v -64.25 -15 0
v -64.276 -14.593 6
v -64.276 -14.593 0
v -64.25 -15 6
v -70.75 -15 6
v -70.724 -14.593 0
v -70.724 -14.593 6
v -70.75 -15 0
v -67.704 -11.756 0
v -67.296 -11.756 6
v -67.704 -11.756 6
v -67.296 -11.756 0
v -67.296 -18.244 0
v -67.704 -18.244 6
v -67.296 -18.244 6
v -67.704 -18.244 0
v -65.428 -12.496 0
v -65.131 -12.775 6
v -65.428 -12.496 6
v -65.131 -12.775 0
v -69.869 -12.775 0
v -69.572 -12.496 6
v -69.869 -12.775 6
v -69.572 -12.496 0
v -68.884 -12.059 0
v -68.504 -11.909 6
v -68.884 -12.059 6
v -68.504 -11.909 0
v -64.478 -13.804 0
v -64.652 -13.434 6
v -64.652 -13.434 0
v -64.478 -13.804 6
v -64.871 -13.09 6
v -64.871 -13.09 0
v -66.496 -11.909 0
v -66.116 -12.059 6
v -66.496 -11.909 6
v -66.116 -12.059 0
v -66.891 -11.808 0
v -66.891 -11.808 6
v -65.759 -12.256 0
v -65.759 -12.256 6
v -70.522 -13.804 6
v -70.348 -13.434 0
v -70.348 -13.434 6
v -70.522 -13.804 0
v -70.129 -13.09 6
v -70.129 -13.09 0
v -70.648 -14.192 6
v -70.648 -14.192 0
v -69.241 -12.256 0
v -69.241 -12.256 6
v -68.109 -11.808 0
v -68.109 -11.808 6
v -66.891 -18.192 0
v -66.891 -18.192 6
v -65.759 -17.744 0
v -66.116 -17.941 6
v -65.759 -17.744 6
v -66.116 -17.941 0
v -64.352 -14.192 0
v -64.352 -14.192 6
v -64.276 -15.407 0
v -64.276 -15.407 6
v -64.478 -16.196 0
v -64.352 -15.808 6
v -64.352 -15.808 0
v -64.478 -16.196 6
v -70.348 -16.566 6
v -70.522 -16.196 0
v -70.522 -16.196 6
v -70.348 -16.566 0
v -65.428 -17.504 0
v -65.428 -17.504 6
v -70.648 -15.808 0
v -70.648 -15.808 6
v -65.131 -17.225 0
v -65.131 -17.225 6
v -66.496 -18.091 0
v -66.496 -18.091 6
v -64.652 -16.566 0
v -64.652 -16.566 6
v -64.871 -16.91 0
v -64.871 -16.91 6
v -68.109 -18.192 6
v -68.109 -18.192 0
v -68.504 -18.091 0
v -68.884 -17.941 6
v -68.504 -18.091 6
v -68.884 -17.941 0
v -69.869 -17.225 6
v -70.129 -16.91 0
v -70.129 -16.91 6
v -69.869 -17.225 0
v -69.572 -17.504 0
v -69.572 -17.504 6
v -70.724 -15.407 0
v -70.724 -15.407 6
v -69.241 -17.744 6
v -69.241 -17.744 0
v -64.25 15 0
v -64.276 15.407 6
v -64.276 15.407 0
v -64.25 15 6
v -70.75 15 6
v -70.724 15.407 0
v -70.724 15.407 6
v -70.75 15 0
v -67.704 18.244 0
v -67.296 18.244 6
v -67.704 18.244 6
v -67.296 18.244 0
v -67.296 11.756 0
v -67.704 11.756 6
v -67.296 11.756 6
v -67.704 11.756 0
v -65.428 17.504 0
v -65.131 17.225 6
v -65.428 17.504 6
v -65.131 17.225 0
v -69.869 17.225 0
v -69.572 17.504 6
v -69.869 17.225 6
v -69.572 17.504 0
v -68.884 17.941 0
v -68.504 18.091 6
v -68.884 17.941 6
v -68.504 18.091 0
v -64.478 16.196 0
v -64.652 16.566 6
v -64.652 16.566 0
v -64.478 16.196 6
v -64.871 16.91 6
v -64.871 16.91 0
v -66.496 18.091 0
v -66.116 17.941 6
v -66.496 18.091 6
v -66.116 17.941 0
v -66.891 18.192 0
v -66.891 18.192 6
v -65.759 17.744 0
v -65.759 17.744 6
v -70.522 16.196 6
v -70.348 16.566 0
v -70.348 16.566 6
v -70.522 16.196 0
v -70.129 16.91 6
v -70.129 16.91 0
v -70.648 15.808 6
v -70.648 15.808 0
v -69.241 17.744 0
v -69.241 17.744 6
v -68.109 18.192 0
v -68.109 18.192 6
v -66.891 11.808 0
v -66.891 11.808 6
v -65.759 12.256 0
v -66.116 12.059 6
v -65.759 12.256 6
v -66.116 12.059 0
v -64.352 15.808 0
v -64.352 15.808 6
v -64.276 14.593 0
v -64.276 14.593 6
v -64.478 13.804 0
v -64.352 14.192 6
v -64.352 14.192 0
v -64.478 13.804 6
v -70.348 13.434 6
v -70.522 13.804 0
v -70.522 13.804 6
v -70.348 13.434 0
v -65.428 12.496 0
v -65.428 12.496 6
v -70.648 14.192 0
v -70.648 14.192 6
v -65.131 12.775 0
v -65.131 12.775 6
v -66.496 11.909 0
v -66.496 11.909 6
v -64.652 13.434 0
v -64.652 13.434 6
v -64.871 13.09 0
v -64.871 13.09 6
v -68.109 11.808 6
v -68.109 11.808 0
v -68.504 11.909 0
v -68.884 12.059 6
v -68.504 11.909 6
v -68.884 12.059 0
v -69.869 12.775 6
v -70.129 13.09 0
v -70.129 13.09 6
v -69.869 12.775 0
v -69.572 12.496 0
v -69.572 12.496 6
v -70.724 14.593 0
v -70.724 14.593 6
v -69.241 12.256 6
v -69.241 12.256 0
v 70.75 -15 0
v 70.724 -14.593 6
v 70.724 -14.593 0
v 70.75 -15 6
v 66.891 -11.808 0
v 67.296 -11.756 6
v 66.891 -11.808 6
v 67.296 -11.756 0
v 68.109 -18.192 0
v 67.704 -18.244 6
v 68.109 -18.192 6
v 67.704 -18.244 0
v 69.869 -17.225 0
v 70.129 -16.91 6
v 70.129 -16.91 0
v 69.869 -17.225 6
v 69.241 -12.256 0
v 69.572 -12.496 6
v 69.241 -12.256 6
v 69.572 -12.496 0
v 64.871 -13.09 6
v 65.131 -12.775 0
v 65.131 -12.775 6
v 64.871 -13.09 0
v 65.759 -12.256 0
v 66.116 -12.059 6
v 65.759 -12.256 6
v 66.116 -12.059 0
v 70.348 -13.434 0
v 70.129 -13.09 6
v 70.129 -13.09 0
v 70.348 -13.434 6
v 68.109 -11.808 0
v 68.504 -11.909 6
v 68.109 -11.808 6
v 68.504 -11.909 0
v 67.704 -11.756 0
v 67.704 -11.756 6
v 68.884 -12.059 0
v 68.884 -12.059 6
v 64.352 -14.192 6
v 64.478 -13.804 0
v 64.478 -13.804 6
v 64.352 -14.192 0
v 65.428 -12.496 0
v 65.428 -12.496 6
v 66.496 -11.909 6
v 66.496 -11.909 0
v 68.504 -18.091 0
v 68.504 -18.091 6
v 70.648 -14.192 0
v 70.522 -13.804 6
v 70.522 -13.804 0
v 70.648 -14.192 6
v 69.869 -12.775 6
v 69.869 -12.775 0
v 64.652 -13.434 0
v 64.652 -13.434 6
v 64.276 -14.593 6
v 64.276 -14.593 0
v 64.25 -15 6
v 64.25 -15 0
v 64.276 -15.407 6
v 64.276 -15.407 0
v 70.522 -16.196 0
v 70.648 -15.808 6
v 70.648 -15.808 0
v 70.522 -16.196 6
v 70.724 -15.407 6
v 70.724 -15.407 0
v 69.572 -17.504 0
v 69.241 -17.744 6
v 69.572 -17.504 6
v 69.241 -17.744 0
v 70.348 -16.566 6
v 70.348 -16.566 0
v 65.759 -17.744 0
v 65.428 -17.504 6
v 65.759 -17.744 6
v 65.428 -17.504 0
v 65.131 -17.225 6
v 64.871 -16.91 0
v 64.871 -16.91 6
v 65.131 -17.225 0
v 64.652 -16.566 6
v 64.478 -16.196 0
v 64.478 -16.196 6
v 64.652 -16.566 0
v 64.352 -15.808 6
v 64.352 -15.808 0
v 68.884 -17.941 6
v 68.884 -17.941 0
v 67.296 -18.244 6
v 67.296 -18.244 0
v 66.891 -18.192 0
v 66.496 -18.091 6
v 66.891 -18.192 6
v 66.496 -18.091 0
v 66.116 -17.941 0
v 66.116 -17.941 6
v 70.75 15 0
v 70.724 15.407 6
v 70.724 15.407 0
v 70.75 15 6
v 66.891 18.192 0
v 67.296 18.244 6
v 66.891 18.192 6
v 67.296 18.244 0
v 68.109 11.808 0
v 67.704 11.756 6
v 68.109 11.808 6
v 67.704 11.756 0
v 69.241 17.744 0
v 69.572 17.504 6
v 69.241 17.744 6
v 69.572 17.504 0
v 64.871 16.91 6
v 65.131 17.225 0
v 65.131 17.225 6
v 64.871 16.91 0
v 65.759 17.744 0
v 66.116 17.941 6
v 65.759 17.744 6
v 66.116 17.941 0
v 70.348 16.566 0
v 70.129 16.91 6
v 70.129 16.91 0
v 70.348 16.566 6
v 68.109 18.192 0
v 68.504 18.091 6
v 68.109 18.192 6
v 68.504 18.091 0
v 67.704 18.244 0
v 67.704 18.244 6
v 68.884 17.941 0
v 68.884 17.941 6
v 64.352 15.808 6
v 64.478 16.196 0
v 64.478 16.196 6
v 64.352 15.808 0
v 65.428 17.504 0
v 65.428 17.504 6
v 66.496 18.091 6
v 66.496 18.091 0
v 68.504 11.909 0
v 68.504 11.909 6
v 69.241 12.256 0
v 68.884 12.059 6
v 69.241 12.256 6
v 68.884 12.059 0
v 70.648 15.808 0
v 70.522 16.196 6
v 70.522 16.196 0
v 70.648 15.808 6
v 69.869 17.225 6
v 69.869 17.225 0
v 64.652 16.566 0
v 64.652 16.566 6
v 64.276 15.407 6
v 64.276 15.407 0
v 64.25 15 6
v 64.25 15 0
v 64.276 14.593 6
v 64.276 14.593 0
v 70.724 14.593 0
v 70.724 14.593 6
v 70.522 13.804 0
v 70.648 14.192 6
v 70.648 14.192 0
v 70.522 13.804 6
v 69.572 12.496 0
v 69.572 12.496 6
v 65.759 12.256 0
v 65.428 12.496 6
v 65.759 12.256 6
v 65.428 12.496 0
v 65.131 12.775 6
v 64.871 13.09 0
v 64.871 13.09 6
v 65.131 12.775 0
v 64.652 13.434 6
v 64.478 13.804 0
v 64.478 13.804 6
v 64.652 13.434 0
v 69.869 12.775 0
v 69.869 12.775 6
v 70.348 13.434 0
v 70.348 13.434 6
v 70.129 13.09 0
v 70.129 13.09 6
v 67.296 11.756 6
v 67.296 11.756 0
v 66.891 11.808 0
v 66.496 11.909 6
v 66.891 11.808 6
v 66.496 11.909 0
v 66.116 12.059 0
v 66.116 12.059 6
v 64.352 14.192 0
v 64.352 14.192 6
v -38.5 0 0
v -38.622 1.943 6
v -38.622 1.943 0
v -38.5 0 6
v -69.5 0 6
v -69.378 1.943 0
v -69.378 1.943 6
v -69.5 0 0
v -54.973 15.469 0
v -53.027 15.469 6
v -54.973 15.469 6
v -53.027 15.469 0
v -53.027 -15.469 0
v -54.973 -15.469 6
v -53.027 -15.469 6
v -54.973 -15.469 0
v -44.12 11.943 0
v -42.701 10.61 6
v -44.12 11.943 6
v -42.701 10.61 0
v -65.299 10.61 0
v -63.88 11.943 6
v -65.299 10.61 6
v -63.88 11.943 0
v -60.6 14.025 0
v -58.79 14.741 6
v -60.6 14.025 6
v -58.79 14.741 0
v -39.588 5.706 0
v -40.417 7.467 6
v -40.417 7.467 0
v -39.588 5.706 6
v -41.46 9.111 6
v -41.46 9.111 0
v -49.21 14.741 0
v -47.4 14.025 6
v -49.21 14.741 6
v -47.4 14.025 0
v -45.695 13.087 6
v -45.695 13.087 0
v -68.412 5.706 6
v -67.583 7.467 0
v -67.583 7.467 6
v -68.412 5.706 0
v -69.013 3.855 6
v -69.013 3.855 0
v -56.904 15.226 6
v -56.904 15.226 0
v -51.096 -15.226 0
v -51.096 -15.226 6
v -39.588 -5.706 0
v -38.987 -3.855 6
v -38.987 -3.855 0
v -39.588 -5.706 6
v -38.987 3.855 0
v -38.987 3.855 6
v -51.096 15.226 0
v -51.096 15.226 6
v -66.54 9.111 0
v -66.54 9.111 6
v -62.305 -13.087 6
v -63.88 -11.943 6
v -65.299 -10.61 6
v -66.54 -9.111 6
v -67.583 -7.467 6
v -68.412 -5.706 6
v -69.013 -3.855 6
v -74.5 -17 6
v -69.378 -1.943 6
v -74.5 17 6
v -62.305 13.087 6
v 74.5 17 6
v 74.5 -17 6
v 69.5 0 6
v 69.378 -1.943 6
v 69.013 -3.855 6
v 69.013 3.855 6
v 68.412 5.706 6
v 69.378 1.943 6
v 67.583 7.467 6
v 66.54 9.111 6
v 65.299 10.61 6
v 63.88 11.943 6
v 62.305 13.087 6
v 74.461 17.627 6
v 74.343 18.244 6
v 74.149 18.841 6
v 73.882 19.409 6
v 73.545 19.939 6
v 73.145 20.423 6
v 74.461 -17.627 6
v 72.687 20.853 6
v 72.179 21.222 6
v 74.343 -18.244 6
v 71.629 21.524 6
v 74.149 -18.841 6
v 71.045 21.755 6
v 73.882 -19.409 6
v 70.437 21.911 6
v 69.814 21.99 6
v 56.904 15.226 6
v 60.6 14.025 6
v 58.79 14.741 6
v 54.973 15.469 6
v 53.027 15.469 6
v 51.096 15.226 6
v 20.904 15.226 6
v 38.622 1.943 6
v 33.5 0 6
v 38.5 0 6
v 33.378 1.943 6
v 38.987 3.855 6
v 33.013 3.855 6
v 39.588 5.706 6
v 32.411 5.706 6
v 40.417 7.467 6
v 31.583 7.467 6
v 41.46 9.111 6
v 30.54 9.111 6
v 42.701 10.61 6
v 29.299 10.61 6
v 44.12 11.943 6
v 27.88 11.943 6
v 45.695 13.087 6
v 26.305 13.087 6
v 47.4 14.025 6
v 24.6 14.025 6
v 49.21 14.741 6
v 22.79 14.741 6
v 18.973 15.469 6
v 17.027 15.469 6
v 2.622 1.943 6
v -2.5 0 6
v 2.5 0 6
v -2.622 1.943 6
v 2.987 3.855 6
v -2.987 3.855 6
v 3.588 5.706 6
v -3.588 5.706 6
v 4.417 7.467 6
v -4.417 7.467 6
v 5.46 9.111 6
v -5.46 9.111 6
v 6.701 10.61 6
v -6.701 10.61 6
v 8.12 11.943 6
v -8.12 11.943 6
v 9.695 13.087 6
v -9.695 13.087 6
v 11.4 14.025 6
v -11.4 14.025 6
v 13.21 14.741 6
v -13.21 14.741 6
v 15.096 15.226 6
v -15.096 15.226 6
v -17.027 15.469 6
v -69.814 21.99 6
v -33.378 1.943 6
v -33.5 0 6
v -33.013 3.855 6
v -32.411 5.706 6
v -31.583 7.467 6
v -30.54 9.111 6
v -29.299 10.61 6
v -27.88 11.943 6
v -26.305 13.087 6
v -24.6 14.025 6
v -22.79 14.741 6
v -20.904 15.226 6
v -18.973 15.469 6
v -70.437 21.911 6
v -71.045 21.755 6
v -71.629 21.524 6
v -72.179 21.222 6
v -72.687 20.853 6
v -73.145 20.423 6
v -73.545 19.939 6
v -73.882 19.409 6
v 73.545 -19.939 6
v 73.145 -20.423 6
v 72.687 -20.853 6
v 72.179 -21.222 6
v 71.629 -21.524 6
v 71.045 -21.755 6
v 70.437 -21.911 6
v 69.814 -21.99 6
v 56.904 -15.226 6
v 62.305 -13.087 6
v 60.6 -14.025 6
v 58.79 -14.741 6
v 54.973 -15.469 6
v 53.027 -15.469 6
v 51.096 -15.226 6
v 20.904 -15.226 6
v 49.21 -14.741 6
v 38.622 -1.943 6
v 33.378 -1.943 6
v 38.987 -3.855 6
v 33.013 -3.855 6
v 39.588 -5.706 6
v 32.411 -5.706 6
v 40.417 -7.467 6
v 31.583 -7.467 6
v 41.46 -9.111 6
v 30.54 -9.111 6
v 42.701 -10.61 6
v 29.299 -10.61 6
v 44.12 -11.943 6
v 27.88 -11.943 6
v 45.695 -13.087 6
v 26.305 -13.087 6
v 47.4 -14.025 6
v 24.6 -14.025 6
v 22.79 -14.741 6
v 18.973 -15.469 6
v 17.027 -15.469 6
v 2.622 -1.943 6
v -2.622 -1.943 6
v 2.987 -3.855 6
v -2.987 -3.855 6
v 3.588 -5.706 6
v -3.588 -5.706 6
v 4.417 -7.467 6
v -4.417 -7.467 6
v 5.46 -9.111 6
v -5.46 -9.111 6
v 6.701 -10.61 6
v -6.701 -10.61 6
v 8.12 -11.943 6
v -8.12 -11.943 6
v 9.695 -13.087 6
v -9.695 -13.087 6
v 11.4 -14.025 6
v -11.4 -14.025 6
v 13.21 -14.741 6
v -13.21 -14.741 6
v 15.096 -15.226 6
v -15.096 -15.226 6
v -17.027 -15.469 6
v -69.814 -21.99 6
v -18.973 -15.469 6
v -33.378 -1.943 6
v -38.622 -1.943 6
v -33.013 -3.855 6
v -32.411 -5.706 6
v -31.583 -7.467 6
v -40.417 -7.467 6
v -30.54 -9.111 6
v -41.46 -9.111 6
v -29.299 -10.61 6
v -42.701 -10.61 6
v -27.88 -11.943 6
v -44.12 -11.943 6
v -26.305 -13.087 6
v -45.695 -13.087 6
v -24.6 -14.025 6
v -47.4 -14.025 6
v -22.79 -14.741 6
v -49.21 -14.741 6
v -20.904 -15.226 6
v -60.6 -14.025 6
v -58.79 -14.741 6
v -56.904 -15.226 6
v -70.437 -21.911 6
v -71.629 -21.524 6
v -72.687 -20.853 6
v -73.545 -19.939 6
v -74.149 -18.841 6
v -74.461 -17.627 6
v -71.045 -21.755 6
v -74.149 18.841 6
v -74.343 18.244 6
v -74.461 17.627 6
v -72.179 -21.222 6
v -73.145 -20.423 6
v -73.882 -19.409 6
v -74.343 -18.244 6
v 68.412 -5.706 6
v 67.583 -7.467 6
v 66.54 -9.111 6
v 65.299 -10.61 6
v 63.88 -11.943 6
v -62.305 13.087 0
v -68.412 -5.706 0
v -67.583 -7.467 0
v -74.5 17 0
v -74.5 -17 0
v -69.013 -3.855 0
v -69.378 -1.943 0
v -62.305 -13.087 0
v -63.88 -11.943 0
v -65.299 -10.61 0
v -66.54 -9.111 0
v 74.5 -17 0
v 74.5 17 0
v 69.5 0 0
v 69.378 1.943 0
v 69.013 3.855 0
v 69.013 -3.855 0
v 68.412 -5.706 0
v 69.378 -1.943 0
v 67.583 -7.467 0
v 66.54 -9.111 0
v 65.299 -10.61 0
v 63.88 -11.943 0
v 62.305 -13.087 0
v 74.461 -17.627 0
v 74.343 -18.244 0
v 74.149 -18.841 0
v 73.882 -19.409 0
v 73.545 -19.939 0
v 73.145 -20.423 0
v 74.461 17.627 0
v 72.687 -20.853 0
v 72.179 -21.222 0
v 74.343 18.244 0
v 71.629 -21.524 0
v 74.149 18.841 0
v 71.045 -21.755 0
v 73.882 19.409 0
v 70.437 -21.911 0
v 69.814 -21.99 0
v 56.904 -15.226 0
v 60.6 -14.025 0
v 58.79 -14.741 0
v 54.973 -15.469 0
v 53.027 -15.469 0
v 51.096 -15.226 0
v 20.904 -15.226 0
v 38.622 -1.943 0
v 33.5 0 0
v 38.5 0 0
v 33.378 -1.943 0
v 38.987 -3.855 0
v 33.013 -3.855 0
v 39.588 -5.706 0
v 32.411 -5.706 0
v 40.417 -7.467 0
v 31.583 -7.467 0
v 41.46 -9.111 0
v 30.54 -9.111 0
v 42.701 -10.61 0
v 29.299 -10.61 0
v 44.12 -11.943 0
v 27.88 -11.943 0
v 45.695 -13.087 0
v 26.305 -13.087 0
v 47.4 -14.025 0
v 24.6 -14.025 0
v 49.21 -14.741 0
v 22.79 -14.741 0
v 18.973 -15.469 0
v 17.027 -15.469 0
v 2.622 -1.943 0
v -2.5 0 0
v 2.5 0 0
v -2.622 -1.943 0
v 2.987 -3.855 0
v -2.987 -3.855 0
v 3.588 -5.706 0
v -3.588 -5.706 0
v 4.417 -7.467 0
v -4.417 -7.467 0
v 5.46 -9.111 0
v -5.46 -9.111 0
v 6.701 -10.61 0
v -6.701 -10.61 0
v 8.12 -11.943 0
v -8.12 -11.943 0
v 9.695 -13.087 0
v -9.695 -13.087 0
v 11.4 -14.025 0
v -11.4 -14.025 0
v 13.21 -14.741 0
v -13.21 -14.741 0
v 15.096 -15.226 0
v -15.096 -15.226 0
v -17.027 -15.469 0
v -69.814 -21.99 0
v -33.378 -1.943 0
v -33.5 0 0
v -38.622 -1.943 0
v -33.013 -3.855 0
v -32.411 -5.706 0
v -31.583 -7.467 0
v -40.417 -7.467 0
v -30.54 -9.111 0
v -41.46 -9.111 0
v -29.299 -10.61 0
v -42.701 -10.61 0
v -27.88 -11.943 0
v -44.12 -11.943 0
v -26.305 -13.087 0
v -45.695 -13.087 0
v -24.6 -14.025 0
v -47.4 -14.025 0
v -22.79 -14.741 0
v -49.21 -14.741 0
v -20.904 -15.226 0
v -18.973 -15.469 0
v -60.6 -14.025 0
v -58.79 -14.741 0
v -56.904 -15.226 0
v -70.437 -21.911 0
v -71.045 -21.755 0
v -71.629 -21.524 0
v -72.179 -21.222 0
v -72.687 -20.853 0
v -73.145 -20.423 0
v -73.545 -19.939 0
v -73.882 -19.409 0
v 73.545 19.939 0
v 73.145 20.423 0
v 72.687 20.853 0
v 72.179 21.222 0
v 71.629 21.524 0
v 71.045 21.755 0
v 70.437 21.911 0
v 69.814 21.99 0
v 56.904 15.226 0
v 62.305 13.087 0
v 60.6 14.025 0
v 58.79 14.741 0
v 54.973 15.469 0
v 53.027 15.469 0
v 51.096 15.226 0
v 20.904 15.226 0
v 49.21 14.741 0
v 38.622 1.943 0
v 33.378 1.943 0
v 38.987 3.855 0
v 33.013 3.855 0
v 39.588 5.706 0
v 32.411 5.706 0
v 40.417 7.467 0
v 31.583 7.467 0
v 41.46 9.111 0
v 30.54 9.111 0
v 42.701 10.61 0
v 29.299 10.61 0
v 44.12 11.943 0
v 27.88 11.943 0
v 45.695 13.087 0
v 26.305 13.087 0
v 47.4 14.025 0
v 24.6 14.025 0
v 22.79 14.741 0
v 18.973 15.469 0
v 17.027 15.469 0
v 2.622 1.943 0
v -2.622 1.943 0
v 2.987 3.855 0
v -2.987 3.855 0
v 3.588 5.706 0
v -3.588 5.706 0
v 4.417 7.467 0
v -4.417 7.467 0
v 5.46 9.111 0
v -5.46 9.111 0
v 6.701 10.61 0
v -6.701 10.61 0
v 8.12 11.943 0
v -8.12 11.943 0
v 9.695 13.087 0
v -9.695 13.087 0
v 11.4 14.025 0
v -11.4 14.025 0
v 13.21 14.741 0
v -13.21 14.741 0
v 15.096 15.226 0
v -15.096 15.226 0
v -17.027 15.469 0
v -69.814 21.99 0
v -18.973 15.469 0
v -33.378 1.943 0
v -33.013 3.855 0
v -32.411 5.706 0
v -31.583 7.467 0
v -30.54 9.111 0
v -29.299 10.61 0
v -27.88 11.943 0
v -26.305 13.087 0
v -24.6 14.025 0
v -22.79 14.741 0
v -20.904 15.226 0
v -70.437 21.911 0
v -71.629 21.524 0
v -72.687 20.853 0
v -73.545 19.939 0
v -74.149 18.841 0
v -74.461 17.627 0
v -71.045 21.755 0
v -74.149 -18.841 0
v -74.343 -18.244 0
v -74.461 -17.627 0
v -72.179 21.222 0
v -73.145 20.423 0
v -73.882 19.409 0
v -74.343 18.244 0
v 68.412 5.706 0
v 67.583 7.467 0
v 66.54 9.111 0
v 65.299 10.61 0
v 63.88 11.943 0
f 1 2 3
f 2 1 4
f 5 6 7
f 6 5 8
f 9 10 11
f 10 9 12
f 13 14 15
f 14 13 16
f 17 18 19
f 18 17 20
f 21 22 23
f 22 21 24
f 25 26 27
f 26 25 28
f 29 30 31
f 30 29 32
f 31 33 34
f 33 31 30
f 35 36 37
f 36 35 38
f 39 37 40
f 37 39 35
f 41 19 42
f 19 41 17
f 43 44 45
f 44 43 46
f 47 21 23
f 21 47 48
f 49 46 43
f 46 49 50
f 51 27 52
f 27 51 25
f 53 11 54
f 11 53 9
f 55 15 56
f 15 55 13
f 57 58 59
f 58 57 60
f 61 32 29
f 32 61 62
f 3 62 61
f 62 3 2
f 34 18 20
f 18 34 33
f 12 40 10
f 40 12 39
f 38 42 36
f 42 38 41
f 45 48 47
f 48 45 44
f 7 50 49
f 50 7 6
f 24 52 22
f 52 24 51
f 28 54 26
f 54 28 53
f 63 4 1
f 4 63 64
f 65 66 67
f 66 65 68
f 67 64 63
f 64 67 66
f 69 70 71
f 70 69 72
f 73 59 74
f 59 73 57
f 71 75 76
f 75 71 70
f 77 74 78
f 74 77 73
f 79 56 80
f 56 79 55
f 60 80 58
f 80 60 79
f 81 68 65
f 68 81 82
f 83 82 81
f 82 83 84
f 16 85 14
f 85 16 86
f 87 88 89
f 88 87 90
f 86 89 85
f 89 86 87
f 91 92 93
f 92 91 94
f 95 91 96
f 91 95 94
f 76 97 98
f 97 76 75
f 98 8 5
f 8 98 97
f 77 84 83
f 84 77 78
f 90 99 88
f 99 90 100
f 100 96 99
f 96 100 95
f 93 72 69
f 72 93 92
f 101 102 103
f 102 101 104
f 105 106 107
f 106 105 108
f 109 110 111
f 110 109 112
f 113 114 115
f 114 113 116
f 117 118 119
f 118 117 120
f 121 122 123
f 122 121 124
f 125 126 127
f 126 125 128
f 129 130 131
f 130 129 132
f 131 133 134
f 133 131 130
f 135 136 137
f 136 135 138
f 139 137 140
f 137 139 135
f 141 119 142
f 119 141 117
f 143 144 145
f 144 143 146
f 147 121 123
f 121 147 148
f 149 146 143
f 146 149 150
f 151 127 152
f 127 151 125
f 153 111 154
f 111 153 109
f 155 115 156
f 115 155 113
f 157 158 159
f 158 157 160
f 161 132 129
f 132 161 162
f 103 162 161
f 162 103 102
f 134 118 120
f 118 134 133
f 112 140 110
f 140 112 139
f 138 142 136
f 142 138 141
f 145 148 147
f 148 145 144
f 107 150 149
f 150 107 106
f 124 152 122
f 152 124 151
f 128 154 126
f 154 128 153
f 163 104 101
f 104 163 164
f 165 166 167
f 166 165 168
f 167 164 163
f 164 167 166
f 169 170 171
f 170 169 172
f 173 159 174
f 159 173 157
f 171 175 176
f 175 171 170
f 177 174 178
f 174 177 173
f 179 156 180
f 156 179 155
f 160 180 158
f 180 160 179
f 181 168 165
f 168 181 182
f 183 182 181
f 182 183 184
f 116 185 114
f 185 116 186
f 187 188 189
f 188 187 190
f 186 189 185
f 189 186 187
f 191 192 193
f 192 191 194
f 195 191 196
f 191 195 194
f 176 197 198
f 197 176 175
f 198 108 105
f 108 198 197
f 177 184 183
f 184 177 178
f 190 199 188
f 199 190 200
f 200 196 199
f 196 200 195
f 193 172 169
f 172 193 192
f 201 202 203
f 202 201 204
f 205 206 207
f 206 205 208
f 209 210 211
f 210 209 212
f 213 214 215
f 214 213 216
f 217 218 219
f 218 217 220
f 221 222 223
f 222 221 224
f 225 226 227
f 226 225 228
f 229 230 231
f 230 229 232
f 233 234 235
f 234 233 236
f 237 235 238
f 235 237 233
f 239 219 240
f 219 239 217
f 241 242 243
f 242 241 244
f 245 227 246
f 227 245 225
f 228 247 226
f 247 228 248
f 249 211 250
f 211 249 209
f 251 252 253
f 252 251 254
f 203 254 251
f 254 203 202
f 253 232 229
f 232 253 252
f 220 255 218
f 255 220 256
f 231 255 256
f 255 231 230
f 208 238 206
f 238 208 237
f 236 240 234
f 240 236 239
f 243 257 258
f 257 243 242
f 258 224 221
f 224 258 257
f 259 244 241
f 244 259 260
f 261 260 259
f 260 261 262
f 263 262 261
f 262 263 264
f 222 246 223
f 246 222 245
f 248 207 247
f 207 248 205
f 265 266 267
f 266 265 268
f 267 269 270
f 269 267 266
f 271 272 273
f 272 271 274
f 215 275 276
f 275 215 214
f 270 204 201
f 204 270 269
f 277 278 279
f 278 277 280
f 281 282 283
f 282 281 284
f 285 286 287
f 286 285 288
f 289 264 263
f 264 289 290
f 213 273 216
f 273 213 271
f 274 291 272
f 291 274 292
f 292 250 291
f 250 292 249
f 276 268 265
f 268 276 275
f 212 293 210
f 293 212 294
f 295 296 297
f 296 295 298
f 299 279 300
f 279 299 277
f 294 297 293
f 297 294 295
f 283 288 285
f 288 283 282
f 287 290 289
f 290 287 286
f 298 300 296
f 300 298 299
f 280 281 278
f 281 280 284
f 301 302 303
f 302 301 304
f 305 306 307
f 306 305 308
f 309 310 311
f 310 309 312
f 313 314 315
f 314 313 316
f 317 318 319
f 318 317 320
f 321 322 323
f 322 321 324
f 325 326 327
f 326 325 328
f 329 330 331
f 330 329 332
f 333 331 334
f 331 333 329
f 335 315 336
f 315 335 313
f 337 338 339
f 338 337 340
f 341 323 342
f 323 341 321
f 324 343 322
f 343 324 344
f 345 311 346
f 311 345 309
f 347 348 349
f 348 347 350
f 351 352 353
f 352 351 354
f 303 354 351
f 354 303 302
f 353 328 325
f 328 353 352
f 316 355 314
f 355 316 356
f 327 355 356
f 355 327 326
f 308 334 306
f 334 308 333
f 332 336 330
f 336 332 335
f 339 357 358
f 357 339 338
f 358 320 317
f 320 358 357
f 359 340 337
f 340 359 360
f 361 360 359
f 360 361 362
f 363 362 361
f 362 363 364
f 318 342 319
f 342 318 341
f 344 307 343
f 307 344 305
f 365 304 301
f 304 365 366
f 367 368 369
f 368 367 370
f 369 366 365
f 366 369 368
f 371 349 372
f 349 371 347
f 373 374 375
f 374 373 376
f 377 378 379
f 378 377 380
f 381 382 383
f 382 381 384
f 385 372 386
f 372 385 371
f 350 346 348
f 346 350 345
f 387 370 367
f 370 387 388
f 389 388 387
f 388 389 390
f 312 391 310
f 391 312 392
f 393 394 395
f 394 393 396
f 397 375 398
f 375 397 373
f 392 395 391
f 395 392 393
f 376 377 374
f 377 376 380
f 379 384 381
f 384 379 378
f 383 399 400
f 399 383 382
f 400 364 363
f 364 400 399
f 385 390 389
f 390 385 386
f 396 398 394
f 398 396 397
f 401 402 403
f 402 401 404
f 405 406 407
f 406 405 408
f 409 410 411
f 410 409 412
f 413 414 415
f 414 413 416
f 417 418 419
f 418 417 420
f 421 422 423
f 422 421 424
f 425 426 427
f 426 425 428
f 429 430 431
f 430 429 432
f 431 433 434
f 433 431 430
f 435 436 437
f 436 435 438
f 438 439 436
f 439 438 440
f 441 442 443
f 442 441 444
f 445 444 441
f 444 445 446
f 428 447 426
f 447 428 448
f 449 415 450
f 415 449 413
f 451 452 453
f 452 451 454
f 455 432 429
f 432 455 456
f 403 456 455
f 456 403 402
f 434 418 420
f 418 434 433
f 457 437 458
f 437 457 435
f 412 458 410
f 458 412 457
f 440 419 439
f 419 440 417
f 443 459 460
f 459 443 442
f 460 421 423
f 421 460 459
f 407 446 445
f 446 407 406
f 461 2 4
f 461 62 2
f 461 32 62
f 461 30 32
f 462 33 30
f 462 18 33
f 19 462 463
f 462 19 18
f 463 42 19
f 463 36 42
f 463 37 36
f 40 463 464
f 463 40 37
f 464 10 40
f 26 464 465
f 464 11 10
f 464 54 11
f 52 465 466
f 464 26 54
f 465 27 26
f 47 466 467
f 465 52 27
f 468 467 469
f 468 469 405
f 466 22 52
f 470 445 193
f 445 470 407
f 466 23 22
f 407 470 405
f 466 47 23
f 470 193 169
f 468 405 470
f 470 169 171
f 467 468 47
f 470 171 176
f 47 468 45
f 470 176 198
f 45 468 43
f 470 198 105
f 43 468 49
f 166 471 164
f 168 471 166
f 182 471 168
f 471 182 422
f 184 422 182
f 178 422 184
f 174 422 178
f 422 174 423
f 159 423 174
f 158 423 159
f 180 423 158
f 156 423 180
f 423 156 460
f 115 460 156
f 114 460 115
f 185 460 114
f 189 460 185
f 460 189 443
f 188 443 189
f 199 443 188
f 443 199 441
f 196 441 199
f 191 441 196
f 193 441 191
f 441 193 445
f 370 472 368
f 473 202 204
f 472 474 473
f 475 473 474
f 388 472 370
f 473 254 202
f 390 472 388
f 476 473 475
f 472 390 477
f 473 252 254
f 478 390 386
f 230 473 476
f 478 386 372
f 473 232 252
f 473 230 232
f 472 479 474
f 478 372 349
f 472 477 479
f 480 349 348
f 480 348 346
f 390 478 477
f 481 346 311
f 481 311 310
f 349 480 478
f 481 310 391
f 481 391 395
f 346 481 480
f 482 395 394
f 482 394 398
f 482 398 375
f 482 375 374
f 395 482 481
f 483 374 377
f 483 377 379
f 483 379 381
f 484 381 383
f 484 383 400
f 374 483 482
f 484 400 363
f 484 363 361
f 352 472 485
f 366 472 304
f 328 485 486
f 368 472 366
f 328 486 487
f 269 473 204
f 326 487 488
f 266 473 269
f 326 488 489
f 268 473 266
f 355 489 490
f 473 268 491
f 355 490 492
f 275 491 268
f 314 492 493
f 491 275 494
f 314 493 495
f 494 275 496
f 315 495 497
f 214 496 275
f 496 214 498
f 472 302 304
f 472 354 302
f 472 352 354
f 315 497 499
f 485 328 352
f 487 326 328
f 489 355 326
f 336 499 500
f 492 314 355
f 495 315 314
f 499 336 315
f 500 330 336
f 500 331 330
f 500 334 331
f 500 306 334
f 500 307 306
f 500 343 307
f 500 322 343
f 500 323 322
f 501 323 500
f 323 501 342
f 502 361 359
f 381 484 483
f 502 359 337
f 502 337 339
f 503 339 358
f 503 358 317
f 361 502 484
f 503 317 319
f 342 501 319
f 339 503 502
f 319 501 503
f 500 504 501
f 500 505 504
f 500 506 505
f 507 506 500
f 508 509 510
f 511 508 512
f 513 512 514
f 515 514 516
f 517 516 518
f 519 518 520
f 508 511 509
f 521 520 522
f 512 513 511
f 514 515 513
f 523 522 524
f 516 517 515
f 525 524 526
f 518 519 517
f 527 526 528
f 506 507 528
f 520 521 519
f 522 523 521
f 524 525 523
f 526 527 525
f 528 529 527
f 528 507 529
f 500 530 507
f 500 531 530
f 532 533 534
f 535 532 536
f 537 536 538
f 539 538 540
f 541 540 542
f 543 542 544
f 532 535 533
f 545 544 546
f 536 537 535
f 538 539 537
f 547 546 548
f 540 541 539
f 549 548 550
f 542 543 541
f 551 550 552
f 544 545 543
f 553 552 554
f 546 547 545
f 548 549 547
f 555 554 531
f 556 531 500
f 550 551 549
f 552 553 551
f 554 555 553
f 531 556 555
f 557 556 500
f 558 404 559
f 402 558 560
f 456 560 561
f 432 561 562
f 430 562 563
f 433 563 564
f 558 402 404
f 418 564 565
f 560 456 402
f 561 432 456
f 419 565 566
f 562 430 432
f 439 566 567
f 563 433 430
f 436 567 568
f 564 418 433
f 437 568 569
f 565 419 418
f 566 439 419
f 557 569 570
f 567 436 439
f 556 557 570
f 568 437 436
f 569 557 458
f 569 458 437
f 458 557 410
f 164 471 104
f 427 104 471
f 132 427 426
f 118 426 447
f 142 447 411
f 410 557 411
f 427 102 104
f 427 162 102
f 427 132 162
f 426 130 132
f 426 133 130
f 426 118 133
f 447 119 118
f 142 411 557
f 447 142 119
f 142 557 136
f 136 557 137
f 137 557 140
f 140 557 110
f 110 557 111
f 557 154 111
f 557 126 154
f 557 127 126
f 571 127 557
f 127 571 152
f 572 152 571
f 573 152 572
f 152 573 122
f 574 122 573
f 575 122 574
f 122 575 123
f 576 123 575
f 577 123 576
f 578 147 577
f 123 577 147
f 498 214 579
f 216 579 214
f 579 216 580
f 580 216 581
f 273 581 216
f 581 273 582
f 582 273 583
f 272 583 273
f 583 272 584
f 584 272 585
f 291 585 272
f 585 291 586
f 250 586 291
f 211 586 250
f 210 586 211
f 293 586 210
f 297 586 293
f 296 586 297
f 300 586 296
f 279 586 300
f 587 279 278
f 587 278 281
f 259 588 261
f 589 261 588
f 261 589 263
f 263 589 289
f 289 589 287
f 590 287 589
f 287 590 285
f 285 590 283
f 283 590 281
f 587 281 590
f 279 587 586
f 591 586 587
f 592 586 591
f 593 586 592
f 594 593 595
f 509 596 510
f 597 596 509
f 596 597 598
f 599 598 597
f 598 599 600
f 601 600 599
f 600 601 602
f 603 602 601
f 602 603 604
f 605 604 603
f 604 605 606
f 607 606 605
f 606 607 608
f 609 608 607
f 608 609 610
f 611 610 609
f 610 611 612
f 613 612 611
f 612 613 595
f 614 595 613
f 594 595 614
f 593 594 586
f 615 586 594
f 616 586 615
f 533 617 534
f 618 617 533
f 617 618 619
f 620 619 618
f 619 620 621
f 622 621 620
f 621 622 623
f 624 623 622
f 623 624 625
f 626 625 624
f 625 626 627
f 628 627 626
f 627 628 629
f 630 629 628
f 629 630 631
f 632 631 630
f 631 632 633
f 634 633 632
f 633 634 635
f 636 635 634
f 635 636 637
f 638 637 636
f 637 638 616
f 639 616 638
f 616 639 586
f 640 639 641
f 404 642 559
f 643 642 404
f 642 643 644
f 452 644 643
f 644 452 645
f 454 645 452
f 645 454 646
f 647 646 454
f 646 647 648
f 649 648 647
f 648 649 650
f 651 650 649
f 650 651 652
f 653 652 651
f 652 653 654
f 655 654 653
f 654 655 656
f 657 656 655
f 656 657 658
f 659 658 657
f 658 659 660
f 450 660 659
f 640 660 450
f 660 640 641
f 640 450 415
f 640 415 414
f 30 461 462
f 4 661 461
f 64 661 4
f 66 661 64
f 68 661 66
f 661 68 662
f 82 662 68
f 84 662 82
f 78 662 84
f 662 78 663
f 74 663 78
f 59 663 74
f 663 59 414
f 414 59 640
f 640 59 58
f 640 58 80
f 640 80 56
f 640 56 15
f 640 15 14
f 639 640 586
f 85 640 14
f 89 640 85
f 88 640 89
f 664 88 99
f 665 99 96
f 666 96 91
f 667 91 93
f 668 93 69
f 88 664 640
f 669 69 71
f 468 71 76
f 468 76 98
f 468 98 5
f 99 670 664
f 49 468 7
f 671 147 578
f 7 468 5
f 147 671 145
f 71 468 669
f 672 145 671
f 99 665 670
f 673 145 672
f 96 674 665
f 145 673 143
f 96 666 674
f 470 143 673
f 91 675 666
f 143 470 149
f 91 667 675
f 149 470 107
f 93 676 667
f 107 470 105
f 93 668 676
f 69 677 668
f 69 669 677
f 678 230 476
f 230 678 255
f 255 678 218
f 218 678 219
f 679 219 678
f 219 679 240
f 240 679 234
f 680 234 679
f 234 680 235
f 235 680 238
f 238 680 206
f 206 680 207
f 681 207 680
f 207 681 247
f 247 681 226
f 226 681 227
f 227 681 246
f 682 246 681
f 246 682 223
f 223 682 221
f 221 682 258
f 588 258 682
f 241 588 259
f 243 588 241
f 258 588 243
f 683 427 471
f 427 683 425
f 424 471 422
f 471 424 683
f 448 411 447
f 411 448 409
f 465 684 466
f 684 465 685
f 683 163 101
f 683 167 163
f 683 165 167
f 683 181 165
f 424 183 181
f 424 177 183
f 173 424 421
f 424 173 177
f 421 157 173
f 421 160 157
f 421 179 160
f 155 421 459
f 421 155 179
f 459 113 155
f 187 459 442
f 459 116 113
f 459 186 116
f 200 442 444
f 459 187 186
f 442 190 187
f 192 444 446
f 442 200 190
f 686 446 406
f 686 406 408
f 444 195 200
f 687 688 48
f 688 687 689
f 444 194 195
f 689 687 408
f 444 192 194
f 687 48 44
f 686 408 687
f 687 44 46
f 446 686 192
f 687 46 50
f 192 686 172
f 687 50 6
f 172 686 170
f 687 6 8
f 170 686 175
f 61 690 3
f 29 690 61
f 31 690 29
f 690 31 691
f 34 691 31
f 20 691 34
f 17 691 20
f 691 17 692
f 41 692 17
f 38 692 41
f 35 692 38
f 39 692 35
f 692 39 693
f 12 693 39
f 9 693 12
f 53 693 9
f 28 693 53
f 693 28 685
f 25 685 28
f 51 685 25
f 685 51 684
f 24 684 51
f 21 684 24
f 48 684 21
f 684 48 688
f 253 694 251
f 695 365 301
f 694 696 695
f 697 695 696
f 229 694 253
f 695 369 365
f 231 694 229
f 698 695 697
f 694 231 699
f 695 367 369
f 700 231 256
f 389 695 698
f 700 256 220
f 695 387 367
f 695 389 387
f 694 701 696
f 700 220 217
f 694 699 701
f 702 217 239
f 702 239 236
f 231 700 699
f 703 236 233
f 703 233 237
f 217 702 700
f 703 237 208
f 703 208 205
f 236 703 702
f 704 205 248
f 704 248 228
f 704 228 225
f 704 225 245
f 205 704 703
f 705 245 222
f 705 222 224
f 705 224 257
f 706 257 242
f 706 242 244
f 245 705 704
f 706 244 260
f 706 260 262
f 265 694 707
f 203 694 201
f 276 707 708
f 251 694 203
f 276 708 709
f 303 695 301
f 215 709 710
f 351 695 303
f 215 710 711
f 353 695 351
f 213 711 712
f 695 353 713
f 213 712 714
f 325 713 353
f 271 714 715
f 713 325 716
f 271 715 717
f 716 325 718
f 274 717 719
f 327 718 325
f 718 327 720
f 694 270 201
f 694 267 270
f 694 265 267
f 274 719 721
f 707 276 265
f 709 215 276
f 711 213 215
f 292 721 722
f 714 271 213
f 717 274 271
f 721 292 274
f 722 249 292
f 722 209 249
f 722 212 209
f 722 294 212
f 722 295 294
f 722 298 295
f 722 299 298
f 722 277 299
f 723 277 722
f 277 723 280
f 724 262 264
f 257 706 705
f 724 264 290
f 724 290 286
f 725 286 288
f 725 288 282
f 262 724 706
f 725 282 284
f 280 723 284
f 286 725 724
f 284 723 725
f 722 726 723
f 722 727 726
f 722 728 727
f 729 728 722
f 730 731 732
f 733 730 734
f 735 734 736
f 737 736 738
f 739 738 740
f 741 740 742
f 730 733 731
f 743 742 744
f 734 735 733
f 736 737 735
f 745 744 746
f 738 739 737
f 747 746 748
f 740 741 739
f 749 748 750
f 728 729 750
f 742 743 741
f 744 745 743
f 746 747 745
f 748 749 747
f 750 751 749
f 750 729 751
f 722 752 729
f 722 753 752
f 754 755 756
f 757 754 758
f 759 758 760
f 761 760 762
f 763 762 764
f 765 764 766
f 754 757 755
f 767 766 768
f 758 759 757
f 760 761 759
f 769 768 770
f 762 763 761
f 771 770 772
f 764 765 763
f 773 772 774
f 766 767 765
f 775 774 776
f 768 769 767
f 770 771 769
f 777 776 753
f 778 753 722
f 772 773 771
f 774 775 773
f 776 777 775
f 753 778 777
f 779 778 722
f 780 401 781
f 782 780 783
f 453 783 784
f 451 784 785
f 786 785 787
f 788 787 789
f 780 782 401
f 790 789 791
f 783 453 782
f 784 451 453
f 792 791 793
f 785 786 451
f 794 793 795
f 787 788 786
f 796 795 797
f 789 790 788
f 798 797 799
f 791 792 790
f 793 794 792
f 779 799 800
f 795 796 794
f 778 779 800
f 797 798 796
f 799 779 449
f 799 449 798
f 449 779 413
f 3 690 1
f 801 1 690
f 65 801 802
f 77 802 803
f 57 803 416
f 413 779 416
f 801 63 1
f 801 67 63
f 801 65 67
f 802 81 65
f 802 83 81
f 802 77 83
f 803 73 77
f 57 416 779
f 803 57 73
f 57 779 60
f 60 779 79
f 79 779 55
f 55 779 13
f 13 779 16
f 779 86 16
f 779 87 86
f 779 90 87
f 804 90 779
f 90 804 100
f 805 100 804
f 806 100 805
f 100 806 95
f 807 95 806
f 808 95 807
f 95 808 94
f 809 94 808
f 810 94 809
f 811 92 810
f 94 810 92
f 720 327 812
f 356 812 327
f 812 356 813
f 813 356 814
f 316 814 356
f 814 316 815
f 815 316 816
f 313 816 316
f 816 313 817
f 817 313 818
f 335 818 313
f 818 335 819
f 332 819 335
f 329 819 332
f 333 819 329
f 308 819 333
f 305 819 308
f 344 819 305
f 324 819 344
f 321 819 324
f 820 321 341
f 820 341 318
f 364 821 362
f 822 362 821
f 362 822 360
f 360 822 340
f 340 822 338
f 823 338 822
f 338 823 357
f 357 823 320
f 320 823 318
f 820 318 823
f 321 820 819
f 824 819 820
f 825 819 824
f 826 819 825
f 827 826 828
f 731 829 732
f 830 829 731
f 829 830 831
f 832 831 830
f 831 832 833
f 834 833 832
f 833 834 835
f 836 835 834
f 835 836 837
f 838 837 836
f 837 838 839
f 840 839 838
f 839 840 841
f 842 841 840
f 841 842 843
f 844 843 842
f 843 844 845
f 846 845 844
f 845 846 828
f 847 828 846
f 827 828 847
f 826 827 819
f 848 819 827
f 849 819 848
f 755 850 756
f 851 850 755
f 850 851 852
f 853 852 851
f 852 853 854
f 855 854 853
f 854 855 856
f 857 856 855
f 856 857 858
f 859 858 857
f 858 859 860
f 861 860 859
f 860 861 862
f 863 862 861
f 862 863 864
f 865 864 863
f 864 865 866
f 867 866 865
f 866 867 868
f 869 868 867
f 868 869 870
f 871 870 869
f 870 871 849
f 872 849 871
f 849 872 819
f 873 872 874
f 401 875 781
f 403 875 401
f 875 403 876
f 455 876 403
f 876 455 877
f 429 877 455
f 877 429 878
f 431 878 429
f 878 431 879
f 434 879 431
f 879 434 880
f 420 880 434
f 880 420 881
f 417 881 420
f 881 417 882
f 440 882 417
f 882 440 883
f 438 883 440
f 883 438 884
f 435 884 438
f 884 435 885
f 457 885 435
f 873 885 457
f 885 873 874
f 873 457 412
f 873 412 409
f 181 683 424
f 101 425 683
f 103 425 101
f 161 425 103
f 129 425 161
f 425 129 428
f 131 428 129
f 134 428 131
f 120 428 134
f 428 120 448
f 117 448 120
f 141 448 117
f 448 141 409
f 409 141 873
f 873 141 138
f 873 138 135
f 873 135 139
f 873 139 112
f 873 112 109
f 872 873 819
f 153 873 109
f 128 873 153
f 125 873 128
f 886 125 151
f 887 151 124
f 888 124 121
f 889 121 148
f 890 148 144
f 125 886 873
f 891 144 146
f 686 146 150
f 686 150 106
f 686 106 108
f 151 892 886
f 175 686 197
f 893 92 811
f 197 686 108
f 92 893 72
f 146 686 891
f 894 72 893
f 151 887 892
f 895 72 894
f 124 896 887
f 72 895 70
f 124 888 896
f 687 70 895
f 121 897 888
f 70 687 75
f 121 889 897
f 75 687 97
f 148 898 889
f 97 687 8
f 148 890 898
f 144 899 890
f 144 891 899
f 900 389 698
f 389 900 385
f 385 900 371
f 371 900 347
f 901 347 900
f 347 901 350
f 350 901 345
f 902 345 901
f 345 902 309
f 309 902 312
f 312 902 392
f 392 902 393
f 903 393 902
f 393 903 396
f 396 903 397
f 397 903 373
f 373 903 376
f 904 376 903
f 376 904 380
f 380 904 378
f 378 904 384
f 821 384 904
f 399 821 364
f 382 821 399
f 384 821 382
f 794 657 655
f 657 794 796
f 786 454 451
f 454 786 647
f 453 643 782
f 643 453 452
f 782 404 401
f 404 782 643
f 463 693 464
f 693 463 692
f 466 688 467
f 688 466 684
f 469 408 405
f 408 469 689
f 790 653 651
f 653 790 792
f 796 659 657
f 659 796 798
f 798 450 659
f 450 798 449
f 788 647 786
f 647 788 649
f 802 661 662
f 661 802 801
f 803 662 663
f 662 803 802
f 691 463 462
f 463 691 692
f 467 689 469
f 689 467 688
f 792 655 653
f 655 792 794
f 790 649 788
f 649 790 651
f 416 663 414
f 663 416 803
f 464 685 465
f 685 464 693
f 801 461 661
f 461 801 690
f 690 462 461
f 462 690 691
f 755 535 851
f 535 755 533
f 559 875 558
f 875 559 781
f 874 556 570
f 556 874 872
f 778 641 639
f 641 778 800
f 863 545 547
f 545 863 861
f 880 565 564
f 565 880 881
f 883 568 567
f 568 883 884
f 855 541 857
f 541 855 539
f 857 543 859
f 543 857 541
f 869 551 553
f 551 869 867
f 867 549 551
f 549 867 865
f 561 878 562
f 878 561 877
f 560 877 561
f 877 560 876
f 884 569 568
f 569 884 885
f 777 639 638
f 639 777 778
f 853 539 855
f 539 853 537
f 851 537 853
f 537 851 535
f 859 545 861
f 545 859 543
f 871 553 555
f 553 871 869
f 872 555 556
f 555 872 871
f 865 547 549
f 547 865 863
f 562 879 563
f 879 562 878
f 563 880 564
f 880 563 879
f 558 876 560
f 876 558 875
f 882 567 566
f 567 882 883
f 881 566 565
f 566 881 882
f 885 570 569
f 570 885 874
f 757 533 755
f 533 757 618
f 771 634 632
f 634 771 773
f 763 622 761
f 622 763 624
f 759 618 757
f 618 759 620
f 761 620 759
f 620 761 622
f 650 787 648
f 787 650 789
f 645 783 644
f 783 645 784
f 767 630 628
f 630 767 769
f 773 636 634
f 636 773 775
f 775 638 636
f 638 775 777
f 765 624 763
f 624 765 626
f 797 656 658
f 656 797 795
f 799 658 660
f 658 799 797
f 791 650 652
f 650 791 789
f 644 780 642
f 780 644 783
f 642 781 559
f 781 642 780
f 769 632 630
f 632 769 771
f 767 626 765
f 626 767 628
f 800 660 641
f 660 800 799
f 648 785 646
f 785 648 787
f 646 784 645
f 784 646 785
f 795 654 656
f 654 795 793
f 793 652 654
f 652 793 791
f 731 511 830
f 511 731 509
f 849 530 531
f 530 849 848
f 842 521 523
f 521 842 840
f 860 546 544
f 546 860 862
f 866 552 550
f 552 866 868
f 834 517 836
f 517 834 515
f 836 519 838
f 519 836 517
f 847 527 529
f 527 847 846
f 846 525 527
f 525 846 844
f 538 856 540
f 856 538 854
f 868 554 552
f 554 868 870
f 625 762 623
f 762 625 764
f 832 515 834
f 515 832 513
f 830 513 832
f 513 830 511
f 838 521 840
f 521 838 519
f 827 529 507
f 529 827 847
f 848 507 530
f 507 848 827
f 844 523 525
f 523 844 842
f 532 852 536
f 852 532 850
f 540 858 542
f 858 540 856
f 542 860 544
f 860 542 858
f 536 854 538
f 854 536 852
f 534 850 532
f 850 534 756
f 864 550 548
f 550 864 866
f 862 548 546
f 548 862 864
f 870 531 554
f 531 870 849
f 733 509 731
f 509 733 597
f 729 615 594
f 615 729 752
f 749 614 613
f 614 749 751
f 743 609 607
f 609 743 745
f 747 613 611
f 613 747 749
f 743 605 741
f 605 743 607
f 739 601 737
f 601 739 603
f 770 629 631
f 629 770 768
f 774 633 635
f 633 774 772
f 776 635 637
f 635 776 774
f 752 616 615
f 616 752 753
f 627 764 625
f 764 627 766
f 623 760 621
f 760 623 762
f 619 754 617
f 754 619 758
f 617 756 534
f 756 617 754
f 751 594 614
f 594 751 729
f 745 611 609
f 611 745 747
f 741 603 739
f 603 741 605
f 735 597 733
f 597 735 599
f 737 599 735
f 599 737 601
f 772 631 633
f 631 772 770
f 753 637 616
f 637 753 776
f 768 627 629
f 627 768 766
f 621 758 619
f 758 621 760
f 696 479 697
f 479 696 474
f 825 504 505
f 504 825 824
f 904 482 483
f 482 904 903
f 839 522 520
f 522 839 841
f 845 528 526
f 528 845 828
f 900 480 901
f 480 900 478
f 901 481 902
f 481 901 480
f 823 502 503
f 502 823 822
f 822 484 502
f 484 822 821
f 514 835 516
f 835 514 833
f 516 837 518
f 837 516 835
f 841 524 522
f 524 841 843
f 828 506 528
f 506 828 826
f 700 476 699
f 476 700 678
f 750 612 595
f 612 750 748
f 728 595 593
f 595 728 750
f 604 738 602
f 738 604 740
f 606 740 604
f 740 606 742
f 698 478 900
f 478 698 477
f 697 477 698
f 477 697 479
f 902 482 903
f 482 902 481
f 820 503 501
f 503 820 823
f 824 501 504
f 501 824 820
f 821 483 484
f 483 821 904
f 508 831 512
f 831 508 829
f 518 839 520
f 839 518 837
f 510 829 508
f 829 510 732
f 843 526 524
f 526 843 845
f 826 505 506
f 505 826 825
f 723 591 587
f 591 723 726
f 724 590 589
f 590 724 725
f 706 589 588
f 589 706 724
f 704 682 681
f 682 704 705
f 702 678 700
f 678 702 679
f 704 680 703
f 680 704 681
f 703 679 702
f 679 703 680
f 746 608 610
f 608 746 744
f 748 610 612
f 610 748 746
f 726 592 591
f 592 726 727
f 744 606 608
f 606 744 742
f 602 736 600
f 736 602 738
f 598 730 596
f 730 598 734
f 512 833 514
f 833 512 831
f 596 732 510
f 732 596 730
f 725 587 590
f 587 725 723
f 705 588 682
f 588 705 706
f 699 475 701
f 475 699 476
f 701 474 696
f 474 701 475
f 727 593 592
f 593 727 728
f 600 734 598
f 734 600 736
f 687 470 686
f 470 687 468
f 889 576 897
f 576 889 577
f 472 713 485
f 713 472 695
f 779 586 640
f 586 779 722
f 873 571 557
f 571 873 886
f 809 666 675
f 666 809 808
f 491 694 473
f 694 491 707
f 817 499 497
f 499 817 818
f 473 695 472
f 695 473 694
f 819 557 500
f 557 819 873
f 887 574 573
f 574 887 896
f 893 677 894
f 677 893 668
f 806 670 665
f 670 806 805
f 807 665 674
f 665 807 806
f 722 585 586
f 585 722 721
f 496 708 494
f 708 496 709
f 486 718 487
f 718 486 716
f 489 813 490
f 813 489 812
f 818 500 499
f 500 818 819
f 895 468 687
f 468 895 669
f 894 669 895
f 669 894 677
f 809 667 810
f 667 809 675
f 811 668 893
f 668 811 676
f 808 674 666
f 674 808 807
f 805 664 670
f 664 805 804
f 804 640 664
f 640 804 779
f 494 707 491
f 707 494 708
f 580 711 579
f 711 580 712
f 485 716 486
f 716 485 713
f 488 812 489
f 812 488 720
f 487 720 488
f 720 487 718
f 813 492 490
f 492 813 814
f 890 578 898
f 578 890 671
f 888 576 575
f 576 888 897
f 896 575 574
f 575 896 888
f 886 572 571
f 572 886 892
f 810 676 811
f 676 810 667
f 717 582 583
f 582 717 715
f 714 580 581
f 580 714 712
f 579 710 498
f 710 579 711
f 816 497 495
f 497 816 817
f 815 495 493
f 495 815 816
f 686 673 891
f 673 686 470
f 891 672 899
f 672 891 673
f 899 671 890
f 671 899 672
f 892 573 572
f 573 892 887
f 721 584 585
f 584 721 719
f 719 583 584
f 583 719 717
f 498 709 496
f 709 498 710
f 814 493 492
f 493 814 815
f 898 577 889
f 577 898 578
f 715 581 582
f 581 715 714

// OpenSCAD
$fn = 50;


difference() {
	union() {
		hull() {
			translate(v = [-69.5000000000, 17.0000000000, 0]) {
				cylinder(h = 6, r = 5);
			}
			translate(v = [69.5000000000, 17.0000000000, 0]) {
				cylinder(h = 6, r = 5);
			}
			translate(v = [-69.5000000000, -17.0000000000, 0]) {
				cylinder(h = 6, r = 5);
			}
			translate(v = [69.5000000000, -17.0000000000, 0]) {
				cylinder(h = 6, r = 5);
			}
		}
	}
	union() {
		#translate(v = [-67.5000000000, -15.0000000000, -100.0000000000]) {
			cylinder(h = 200, r = 3.2500000000);
		}
		#translate(v = [-67.5000000000, 15.0000000000, -100.0000000000]) {
			cylinder(h = 200, r = 3.2500000000);
		}
		#translate(v = [67.5000000000, -15.0000000000, -100.0000000000]) {
			cylinder(h = 200, r = 3.2500000000);
		}
		#translate(v = [67.5000000000, 15.0000000000, -100.0000000000]) {
			cylinder(h = 200, r = 3.2500000000);
		}
		#translate(v = [-54.0000000000, 0, 0]) {
			cylinder(h = 6, r = 15.5000000000);
		}
		#translate(v = [-18.0000000000, 0, 0]) {
			cylinder(h = 6, r = 15.5000000000);
		}
		#translate(v = [18.0000000000, 0, 0]) {
			cylinder(h = 6, r = 15.5000000000);
		}
		#translate(v = [54.0000000000, 0, 0]) {
			cylinder(h = 6, r = 15.5000000000);
		}
	}
}
